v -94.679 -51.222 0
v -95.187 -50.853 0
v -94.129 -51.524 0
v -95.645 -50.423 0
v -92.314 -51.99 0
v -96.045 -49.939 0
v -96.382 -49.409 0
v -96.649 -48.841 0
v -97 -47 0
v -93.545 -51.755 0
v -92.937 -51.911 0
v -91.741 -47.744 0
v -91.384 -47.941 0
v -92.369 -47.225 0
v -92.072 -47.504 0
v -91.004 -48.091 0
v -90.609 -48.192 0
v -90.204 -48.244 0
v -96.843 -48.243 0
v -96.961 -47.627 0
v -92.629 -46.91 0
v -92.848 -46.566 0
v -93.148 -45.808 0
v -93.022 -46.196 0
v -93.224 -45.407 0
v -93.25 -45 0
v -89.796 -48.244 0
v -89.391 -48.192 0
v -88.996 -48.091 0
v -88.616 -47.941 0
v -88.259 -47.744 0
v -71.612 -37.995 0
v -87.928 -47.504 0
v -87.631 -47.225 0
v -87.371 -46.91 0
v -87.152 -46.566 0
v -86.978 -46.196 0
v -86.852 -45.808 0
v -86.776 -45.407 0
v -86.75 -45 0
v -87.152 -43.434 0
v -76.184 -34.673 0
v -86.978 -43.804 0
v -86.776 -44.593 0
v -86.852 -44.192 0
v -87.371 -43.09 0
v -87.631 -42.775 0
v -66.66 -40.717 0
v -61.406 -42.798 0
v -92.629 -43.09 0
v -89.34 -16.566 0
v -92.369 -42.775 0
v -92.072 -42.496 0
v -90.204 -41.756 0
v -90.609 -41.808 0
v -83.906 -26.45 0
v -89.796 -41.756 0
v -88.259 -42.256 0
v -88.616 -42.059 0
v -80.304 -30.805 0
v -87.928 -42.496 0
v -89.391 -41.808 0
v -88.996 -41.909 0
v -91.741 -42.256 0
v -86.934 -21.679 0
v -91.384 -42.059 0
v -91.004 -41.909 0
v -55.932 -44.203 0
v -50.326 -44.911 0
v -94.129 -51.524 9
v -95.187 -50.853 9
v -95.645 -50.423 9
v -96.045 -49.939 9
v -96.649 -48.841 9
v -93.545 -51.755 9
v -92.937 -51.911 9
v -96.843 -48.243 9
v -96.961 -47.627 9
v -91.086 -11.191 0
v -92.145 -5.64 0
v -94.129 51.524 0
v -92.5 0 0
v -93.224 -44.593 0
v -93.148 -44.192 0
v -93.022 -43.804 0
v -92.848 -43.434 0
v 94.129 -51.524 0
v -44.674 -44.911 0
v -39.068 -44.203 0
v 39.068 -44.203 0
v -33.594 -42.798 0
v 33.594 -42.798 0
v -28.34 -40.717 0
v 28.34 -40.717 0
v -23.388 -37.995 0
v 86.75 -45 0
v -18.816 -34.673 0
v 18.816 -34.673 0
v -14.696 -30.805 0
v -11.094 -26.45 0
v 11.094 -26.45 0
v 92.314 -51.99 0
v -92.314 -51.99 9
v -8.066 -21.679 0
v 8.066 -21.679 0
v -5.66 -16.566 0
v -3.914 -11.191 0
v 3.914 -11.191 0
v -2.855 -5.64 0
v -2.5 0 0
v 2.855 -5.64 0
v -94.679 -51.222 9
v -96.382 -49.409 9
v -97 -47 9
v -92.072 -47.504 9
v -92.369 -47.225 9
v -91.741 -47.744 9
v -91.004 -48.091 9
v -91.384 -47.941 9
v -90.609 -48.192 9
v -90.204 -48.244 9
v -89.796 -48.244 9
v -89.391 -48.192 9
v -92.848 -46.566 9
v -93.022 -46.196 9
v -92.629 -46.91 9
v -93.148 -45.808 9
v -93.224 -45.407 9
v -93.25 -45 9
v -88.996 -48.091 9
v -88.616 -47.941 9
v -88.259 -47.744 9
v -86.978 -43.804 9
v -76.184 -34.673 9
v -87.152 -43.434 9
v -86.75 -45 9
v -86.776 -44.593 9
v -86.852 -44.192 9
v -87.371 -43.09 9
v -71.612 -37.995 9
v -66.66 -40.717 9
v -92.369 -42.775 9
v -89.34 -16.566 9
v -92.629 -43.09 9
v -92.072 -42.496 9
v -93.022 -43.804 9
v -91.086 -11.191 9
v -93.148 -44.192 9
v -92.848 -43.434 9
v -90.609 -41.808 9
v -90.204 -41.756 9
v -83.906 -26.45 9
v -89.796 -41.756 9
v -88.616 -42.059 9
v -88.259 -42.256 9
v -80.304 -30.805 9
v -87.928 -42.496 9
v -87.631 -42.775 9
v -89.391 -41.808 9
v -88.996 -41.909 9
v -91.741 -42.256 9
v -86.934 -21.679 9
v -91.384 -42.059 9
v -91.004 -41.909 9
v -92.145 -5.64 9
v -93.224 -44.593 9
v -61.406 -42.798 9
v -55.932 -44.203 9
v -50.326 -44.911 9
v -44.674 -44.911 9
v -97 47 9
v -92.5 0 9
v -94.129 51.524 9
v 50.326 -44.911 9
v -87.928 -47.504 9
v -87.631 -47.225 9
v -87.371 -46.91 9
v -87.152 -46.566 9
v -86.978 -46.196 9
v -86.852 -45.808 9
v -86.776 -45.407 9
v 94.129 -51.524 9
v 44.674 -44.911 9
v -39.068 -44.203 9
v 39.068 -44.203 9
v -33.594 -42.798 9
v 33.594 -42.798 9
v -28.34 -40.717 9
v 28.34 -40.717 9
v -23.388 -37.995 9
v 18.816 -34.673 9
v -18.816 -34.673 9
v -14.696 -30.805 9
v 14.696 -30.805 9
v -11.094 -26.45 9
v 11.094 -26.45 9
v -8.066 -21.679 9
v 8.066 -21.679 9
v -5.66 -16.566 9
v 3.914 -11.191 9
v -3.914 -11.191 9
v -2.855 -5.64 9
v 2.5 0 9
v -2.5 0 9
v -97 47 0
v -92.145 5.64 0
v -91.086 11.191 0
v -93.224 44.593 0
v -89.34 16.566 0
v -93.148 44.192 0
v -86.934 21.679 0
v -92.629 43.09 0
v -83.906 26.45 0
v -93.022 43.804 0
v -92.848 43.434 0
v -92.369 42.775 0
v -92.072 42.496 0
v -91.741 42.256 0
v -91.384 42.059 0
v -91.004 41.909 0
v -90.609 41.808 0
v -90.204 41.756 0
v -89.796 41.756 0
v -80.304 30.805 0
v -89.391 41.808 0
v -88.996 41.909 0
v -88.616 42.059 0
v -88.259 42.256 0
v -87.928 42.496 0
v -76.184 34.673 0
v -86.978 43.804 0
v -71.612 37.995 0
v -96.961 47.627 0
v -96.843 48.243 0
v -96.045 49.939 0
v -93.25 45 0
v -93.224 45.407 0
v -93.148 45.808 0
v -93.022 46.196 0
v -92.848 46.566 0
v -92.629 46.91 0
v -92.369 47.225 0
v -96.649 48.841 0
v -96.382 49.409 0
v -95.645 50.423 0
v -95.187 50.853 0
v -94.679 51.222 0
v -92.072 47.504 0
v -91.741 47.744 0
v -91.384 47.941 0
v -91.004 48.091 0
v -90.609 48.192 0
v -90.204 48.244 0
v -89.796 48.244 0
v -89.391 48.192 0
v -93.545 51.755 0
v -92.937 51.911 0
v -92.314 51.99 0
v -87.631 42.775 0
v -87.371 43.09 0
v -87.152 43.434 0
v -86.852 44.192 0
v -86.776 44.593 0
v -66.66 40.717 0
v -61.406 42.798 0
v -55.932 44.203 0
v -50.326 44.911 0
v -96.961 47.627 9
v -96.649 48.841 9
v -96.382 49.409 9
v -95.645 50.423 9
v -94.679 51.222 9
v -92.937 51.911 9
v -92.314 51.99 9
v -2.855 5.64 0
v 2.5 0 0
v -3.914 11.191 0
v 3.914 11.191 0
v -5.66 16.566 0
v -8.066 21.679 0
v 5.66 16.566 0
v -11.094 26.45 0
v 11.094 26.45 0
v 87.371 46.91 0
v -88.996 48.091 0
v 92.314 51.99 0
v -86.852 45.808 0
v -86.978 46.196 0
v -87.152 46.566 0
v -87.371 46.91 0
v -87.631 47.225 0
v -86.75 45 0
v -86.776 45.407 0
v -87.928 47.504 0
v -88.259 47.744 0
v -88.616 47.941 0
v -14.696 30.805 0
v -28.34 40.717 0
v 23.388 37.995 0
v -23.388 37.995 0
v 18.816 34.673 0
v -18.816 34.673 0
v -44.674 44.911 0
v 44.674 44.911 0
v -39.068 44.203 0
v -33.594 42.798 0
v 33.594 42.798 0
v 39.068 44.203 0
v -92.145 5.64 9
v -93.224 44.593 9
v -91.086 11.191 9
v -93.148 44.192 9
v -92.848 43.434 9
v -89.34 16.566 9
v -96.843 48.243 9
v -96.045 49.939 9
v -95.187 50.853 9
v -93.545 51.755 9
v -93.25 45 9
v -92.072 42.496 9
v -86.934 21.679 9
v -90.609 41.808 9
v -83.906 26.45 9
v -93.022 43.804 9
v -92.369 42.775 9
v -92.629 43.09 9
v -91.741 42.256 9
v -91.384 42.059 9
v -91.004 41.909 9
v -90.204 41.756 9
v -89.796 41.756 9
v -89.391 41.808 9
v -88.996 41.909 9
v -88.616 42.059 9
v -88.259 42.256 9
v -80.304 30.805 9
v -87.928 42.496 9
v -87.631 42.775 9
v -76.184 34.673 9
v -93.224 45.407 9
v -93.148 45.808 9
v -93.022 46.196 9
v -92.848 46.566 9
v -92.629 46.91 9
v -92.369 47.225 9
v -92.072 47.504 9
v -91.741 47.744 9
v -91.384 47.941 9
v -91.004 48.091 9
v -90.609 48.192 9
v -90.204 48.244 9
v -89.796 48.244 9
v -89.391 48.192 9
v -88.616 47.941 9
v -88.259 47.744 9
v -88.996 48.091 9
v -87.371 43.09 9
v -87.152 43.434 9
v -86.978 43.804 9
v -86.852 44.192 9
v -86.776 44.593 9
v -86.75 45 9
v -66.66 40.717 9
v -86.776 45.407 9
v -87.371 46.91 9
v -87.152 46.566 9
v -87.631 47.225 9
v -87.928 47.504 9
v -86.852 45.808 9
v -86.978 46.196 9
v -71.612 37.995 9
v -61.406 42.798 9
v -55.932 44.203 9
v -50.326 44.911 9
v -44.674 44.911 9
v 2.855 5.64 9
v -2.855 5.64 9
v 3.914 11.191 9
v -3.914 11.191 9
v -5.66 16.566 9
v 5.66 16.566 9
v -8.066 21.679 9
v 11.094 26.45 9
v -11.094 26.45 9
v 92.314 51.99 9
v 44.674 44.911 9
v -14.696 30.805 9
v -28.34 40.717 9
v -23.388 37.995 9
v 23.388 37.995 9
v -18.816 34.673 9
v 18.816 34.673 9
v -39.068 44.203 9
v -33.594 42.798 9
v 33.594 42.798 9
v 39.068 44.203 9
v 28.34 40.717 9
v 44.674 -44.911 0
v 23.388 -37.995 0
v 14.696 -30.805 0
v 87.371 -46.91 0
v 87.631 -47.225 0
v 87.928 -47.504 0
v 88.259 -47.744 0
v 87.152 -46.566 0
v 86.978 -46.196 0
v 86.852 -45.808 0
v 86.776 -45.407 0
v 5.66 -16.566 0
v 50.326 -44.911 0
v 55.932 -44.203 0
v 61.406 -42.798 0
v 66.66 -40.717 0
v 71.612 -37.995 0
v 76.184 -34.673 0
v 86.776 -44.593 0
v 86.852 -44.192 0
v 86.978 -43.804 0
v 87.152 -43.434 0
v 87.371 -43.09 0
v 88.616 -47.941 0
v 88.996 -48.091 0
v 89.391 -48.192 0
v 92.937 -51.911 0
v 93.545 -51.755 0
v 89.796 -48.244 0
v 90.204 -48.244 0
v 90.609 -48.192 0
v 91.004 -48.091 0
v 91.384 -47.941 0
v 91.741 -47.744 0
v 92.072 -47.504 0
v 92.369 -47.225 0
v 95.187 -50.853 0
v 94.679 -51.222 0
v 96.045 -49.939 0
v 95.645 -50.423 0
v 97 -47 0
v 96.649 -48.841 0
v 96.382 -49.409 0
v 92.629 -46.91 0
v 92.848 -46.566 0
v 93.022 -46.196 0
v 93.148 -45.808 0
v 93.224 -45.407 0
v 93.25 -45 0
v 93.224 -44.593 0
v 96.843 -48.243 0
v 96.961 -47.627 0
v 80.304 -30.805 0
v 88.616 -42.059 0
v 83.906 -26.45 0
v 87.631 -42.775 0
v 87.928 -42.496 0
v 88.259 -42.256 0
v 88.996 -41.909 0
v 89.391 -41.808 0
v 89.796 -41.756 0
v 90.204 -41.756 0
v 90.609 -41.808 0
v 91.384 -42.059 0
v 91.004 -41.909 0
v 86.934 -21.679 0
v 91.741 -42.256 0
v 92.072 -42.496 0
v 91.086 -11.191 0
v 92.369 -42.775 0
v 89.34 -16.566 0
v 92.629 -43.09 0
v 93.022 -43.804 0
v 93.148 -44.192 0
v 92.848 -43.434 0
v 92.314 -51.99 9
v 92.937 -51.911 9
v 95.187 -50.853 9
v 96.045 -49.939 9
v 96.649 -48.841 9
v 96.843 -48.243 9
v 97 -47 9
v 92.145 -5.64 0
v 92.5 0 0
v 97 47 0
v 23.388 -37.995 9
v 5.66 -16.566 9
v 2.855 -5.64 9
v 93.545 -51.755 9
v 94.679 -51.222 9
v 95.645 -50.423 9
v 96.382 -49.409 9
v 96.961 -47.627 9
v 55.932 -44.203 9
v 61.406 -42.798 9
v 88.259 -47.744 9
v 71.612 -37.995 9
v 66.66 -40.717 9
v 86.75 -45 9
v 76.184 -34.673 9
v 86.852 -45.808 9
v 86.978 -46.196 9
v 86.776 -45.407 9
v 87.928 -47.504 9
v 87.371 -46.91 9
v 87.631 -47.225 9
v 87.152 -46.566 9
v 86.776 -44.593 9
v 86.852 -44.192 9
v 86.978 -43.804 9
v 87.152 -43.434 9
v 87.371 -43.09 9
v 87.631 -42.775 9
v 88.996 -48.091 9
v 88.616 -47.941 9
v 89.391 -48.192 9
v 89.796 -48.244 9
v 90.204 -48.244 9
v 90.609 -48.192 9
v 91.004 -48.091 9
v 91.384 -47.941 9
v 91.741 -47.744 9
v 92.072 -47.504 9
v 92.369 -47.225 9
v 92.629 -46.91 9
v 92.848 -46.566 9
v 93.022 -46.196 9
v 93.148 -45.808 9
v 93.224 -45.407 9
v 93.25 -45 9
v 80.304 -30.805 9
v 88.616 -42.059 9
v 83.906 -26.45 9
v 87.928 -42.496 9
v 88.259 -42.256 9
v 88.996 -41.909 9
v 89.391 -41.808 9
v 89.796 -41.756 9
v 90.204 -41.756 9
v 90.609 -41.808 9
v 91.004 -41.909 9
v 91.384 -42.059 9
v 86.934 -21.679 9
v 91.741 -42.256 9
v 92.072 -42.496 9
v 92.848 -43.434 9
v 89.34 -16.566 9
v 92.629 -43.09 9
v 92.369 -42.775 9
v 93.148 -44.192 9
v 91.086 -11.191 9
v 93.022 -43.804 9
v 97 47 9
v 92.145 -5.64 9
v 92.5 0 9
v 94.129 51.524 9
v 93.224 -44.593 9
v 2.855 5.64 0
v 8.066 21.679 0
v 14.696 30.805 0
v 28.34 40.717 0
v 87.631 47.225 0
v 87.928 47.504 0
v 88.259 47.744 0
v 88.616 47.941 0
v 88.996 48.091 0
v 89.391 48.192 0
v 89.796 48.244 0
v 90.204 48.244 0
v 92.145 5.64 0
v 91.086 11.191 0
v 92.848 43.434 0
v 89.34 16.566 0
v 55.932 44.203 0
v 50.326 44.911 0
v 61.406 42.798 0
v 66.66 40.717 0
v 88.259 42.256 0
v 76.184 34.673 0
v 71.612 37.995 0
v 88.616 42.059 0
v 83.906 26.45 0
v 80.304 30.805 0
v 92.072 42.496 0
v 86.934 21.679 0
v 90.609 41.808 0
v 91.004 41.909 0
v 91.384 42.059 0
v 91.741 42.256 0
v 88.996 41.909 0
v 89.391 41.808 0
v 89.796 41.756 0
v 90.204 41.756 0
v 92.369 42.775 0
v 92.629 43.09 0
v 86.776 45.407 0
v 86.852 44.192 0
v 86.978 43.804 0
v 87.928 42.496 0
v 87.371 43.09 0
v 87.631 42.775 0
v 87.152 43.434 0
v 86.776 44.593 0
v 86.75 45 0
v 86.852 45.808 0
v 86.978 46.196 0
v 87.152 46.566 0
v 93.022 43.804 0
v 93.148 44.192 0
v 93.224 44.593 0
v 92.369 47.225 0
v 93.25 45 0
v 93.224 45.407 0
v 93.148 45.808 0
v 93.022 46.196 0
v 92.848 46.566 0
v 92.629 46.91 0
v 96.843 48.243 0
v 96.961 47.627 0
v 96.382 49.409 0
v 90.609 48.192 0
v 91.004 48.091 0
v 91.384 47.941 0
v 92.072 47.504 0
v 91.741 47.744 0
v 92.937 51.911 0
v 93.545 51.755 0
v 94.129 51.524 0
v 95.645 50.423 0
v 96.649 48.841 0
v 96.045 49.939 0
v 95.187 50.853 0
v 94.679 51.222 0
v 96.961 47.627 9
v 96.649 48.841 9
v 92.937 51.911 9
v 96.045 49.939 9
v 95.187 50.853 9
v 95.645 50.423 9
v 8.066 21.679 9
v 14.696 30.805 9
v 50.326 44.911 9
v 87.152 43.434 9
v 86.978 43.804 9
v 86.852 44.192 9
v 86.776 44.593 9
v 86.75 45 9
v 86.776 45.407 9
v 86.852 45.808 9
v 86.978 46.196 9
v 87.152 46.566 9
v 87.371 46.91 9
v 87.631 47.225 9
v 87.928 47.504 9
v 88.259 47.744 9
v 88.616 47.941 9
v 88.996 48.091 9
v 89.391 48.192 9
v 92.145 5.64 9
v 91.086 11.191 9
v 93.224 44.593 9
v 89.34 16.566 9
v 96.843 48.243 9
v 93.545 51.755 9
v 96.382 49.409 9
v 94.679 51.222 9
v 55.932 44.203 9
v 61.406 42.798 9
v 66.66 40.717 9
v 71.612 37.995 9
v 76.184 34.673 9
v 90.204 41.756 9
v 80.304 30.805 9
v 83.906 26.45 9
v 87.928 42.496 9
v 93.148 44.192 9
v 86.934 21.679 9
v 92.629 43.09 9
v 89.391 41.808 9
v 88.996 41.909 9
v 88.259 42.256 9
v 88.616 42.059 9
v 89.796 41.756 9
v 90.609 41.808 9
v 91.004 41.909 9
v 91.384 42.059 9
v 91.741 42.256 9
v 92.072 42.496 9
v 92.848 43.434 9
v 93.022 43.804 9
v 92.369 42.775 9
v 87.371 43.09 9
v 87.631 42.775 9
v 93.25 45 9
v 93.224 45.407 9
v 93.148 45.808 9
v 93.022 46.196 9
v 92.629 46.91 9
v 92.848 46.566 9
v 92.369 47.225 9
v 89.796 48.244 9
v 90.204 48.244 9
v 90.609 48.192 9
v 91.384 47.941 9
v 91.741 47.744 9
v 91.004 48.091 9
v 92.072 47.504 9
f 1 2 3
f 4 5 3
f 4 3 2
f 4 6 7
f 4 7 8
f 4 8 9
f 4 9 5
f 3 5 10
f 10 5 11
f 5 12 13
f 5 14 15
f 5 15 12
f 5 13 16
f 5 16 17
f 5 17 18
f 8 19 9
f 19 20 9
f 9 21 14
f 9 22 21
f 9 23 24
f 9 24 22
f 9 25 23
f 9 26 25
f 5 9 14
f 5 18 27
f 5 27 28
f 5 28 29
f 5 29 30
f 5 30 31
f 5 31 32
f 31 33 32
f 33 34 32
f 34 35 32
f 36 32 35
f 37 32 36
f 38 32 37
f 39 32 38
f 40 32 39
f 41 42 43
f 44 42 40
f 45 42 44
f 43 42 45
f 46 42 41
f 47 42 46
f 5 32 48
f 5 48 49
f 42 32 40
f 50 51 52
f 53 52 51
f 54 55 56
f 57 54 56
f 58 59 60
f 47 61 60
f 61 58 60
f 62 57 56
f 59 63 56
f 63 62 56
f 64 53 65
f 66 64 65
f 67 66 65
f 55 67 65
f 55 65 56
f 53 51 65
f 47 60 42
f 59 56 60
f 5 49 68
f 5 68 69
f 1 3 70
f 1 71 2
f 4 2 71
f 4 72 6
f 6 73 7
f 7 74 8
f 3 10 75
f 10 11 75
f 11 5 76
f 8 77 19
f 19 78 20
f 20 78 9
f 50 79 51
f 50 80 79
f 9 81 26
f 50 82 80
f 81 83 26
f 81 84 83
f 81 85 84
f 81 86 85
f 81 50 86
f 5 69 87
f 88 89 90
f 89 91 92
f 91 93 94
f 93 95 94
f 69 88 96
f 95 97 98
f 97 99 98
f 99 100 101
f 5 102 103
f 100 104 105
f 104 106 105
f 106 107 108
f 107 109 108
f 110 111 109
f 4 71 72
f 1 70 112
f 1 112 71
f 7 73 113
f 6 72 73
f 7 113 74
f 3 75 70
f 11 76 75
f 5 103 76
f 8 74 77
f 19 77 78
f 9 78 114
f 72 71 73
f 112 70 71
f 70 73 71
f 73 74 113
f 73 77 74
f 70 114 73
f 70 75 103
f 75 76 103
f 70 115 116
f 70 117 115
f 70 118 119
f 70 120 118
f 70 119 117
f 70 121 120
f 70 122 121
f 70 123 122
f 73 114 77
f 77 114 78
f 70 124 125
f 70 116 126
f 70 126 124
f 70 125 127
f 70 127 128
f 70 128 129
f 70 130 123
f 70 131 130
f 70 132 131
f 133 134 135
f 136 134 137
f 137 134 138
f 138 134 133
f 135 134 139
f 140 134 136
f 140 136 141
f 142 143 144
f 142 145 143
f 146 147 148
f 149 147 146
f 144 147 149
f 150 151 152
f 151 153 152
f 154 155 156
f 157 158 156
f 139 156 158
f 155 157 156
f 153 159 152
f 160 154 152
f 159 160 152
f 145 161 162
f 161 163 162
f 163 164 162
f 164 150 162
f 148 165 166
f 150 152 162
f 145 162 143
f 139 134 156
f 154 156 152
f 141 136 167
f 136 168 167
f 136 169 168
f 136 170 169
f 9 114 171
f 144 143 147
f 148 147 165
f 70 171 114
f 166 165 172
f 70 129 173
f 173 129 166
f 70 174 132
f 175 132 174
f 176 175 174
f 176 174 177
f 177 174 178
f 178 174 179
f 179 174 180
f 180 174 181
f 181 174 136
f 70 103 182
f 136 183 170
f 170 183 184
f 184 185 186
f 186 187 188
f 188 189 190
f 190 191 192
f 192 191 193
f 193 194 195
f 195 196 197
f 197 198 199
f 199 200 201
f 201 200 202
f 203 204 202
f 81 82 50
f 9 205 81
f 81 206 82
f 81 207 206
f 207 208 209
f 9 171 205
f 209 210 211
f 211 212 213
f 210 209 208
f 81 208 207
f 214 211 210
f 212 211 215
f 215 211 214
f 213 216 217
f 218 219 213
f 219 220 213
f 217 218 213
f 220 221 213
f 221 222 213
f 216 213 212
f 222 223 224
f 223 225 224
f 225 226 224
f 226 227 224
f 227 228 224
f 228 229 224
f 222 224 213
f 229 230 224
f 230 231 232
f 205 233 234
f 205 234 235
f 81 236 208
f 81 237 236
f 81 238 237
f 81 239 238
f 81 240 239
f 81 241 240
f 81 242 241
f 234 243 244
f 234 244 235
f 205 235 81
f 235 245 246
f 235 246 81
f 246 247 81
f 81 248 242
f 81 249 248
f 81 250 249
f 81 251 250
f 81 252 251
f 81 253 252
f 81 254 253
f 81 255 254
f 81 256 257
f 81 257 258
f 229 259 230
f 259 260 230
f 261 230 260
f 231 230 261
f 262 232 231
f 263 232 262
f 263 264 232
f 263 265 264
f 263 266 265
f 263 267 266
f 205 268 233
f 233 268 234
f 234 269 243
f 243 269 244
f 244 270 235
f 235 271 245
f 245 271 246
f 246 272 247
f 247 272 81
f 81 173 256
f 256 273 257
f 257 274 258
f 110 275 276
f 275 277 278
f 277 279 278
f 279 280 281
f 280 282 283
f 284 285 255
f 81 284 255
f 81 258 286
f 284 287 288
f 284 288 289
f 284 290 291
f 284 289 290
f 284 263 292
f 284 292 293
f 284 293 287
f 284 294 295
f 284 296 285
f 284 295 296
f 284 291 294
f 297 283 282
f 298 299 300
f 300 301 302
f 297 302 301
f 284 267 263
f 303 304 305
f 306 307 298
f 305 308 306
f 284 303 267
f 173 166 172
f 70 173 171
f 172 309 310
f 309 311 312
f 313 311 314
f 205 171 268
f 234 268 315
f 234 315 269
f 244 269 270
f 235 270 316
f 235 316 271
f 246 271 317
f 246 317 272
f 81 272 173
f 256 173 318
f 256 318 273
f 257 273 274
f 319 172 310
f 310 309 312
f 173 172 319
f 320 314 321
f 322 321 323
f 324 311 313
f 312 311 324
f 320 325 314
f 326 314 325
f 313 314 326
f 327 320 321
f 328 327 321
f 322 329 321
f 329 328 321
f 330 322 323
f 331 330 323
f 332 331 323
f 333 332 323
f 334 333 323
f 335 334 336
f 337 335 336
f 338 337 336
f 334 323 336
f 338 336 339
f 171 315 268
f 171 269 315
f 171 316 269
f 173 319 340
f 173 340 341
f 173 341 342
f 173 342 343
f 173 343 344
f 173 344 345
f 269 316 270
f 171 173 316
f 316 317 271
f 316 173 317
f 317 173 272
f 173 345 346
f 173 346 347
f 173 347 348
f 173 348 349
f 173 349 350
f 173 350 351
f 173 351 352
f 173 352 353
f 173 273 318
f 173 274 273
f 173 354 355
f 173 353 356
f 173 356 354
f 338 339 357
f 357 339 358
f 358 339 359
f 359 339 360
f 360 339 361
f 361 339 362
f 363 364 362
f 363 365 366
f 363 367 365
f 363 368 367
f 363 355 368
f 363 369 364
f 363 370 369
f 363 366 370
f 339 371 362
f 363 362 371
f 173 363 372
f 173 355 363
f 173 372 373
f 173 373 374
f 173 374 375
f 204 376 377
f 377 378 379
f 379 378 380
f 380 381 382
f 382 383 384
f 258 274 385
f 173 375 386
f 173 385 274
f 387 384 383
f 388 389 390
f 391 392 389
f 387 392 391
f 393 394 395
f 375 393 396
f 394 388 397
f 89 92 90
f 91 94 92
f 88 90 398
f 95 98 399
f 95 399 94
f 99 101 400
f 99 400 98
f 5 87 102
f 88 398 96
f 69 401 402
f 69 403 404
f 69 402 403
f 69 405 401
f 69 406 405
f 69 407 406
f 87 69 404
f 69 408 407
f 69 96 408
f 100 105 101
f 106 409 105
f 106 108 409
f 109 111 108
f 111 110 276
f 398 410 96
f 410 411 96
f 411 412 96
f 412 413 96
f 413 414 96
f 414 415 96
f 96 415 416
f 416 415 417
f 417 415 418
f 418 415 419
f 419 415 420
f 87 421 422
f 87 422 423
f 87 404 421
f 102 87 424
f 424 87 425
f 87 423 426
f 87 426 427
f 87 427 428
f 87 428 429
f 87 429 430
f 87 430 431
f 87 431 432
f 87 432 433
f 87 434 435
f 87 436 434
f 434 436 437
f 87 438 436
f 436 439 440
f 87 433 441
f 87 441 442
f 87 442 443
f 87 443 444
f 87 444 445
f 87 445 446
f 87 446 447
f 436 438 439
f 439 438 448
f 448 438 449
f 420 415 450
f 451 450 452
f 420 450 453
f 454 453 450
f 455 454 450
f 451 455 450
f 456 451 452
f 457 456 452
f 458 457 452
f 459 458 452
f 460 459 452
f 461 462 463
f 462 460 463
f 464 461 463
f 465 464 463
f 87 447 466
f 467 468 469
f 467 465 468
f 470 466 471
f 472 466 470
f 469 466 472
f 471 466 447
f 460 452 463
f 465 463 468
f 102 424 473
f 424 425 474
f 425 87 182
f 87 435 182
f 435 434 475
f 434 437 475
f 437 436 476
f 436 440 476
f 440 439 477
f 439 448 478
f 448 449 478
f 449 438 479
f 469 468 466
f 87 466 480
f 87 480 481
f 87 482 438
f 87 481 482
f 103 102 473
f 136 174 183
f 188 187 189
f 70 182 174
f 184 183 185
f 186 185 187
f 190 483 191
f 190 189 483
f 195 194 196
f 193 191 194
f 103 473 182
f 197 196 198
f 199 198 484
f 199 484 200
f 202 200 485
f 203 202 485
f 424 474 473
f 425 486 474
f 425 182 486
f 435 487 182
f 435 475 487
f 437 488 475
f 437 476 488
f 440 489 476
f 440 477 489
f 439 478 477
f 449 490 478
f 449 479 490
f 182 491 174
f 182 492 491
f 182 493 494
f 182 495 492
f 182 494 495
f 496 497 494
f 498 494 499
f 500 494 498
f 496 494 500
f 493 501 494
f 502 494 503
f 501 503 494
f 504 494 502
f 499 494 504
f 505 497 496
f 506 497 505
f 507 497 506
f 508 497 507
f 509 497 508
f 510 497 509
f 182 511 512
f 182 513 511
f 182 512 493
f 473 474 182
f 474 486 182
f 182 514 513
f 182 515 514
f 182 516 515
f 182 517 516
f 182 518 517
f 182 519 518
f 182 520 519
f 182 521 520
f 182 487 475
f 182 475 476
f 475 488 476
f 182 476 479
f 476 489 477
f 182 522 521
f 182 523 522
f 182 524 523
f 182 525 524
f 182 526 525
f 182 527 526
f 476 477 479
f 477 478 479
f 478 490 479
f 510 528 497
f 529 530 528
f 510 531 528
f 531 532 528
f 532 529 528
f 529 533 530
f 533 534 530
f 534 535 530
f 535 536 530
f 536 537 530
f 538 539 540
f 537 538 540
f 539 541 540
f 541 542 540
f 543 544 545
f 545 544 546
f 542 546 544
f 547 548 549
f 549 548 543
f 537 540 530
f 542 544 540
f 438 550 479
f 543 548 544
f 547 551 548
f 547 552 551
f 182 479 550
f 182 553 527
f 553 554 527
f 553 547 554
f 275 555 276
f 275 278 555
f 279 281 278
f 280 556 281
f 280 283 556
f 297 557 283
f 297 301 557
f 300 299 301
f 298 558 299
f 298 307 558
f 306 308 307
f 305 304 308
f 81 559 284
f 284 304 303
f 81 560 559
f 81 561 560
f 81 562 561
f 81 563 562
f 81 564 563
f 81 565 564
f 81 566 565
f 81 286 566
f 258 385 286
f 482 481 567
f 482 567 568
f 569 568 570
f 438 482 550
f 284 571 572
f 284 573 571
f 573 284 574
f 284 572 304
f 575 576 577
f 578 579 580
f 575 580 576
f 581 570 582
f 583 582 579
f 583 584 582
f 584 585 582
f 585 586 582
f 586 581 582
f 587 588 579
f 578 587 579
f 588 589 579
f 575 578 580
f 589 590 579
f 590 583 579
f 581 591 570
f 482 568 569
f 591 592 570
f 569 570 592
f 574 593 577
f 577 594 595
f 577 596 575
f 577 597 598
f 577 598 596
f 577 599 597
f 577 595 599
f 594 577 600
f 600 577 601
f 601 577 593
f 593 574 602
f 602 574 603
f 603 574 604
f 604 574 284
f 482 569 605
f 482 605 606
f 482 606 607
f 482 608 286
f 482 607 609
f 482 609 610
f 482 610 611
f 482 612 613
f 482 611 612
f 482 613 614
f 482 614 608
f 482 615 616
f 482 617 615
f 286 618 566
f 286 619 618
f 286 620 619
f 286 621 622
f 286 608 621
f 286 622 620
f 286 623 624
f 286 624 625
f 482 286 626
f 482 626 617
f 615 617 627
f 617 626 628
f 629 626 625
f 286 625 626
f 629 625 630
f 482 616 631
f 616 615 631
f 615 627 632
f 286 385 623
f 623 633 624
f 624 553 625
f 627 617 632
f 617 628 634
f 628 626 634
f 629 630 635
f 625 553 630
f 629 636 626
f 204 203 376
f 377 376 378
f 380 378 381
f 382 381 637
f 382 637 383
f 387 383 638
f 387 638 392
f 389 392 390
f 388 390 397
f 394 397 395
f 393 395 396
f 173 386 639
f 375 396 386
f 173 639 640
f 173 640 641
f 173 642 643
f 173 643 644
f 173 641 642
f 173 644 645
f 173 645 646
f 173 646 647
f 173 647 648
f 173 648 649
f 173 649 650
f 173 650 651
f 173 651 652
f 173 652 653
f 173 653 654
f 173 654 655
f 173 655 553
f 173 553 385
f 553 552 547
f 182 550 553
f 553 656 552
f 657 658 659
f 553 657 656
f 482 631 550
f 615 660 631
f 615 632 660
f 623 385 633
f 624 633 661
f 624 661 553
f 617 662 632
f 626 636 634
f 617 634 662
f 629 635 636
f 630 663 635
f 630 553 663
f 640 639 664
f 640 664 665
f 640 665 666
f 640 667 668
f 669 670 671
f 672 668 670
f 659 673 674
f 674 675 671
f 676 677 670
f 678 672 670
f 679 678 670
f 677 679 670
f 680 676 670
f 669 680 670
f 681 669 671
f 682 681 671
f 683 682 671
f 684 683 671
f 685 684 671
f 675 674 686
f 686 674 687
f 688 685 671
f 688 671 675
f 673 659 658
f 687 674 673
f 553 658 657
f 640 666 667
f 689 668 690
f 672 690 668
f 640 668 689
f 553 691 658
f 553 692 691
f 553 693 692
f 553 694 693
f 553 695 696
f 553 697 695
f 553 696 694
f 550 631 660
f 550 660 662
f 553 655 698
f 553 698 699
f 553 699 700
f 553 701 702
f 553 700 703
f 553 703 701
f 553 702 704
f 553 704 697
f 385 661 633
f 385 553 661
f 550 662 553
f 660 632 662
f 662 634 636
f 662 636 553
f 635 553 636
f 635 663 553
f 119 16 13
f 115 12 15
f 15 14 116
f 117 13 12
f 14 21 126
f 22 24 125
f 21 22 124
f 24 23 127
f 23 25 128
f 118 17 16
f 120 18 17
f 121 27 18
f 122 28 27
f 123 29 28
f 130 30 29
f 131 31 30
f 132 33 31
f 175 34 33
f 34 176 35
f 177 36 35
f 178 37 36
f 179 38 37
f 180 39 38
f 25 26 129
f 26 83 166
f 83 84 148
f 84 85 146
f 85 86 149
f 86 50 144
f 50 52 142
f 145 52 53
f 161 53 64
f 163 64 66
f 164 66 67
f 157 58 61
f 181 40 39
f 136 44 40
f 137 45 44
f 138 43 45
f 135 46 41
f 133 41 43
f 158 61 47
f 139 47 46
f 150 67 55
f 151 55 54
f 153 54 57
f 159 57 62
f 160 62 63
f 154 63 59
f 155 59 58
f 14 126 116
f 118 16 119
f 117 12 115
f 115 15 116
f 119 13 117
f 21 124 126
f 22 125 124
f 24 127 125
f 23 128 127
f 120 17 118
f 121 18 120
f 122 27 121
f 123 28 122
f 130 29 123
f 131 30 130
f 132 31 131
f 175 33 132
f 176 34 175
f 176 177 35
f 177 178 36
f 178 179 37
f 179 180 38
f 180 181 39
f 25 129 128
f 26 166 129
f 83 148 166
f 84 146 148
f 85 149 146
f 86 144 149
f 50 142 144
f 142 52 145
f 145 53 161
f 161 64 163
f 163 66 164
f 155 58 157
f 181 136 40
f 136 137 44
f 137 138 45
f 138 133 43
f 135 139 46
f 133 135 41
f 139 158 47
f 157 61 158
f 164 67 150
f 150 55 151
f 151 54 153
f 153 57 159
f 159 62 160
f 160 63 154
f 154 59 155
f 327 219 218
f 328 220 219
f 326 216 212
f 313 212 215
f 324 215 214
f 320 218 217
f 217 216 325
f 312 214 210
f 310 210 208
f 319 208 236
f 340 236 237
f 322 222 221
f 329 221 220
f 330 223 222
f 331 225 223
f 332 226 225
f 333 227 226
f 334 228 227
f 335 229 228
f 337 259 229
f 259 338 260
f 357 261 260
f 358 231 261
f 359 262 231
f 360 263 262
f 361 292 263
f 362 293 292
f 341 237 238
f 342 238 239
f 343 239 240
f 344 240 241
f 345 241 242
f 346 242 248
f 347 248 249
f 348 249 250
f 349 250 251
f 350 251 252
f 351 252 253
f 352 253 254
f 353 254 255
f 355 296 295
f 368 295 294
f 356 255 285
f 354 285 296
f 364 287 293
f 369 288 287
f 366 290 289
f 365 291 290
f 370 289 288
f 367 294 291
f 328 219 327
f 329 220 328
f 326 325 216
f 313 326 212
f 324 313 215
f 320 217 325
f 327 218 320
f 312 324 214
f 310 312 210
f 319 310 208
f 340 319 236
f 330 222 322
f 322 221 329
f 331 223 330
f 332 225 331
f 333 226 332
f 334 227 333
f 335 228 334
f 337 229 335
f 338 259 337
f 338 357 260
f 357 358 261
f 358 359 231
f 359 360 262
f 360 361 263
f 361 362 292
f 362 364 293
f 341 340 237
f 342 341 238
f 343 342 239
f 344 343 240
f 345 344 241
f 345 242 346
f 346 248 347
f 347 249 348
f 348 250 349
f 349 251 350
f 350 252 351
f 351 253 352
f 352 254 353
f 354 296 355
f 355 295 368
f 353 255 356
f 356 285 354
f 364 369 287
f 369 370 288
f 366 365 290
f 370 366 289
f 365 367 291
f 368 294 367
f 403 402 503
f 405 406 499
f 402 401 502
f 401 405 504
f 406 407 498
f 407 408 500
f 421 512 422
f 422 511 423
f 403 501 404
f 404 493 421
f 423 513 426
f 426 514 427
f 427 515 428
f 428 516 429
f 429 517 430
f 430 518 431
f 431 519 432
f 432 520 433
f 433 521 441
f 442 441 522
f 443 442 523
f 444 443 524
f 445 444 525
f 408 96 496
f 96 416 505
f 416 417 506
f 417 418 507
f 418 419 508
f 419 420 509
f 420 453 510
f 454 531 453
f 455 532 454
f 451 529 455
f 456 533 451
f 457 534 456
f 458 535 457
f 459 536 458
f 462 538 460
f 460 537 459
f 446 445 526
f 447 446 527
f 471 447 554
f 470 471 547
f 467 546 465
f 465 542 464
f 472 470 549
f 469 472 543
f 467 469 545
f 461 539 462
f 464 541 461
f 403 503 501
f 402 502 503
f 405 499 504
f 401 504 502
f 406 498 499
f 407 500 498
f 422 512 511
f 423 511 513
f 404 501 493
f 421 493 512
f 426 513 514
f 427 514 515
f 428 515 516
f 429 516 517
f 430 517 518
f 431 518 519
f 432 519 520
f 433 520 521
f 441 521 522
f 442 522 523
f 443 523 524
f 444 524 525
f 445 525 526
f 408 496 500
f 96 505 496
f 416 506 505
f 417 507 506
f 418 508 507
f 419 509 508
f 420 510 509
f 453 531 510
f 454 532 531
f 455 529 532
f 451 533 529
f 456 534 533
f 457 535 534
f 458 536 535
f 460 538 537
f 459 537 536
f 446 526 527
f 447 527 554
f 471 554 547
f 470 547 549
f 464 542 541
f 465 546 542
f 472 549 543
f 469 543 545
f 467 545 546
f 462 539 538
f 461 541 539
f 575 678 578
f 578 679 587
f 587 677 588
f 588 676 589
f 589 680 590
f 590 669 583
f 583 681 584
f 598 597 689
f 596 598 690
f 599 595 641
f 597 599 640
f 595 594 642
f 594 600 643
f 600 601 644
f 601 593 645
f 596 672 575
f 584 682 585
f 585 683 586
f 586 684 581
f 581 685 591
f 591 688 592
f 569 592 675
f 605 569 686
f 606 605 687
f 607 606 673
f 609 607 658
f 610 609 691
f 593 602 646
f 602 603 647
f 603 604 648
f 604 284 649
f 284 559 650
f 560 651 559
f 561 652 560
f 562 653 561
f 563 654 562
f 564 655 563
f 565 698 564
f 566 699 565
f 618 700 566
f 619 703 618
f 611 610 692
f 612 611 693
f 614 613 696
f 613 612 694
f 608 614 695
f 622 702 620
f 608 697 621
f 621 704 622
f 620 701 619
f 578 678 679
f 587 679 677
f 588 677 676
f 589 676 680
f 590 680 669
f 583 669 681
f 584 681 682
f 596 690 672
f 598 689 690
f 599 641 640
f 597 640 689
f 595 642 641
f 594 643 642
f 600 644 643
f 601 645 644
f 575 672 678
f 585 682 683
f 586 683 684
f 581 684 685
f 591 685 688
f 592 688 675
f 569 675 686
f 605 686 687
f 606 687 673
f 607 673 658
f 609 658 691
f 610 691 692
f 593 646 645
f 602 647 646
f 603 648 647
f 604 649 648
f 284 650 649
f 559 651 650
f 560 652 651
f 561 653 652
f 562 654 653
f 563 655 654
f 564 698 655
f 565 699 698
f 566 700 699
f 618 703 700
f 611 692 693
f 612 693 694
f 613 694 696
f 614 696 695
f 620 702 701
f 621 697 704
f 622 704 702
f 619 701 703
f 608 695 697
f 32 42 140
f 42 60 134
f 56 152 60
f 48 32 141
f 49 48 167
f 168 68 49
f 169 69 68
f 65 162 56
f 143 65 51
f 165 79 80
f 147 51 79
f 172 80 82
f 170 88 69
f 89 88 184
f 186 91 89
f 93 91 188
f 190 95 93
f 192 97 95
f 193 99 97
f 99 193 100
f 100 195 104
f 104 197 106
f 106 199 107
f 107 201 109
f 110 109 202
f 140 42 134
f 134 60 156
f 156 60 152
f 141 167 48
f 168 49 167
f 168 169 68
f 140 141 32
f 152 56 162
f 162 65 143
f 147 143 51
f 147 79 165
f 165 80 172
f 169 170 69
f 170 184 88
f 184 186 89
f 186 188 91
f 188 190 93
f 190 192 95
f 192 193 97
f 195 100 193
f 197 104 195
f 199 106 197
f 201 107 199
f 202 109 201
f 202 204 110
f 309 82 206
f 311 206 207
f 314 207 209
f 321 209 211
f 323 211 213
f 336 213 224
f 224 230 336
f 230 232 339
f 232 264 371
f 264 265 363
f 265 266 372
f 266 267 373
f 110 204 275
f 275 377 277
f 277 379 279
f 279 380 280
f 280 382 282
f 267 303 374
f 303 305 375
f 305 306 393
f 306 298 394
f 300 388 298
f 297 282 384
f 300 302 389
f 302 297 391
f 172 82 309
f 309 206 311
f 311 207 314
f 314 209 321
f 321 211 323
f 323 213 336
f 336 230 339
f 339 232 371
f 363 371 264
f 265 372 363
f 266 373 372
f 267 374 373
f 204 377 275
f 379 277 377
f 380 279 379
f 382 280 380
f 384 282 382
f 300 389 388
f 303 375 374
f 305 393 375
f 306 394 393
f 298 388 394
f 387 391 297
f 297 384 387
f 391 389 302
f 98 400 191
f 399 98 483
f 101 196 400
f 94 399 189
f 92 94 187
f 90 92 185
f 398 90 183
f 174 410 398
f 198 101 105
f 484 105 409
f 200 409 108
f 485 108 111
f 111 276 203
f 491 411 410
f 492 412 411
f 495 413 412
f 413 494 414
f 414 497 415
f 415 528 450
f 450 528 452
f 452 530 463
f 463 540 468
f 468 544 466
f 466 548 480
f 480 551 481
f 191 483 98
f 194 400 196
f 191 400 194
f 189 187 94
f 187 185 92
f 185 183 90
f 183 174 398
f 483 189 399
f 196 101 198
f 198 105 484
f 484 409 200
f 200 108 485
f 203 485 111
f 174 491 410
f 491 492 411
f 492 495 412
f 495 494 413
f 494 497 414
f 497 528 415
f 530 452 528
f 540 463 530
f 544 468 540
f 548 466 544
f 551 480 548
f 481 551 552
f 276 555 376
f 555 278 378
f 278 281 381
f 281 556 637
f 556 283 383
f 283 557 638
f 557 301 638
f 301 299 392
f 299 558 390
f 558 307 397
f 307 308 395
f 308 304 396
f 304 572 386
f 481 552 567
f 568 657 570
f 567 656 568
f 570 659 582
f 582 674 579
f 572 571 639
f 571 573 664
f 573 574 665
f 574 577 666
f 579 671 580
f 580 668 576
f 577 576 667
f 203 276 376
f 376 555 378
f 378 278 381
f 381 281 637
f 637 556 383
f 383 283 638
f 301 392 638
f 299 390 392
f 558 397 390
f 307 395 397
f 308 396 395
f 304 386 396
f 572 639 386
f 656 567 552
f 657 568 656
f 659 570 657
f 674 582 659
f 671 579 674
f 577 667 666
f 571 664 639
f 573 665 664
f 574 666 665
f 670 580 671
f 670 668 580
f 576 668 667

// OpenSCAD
$fn = 50;

difference() {
	union() {
		hull() {
			translate(v = [-92.0, 47.0, 0]) {
				cylinder(h = 9, r = 5);
			}
			translate(v = [92.0, 47.0, 0]) {
				cylinder(h = 9, r = 5);
			}
			translate(v = [-92.0, -47.0, 0]) {
				cylinder(h = 9, r = 5);
			}
			translate(v = [92.0, -47.0, 0]) {
				cylinder(h = 9, r = 5);
			}
		}
	}
	union() {
		translate(v = [-90.0, -45.0, -100.0]) {
			cylinder(h = 200, r = 3.25);
		}
		translate(v = [-90.0, 45.0, -100.0]) {
			cylinder(h = 200, r = 3.25);
		}
		translate(v = [90.0, -45.0, -100.0]) {
			cylinder(h = 200, r = 3.25);
		}
		translate(v = [90.0, 45.0, -100.0]) {
			cylinder(h = 200, r = 3.25);
		}
		translate(v = [-90.0, -45.0, -100.0]) {
			cylinder(h = 200, r = 1.8);
		}
		translate(v = [-90.0, 45.0, -100.0]) {
			cylinder(h = 200, r = 1.8);
		}
		translate(v = [90.0, -45.0, -100.0]) {
			cylinder(h = 200, r = 1.8);
		}
		translate(v = [90.0, 45.0, -100.0]) {
			cylinder(h = 200, r = 1.8);
		}
		translate(v = [-47.5, 0, 0.0]) {
			cylinder(h = 9, r = 45.0);
		}
		translate(v = [47.5, 0, 0.0]) {
			cylinder(h = 9, r = 45.0);
		}
	}
}
